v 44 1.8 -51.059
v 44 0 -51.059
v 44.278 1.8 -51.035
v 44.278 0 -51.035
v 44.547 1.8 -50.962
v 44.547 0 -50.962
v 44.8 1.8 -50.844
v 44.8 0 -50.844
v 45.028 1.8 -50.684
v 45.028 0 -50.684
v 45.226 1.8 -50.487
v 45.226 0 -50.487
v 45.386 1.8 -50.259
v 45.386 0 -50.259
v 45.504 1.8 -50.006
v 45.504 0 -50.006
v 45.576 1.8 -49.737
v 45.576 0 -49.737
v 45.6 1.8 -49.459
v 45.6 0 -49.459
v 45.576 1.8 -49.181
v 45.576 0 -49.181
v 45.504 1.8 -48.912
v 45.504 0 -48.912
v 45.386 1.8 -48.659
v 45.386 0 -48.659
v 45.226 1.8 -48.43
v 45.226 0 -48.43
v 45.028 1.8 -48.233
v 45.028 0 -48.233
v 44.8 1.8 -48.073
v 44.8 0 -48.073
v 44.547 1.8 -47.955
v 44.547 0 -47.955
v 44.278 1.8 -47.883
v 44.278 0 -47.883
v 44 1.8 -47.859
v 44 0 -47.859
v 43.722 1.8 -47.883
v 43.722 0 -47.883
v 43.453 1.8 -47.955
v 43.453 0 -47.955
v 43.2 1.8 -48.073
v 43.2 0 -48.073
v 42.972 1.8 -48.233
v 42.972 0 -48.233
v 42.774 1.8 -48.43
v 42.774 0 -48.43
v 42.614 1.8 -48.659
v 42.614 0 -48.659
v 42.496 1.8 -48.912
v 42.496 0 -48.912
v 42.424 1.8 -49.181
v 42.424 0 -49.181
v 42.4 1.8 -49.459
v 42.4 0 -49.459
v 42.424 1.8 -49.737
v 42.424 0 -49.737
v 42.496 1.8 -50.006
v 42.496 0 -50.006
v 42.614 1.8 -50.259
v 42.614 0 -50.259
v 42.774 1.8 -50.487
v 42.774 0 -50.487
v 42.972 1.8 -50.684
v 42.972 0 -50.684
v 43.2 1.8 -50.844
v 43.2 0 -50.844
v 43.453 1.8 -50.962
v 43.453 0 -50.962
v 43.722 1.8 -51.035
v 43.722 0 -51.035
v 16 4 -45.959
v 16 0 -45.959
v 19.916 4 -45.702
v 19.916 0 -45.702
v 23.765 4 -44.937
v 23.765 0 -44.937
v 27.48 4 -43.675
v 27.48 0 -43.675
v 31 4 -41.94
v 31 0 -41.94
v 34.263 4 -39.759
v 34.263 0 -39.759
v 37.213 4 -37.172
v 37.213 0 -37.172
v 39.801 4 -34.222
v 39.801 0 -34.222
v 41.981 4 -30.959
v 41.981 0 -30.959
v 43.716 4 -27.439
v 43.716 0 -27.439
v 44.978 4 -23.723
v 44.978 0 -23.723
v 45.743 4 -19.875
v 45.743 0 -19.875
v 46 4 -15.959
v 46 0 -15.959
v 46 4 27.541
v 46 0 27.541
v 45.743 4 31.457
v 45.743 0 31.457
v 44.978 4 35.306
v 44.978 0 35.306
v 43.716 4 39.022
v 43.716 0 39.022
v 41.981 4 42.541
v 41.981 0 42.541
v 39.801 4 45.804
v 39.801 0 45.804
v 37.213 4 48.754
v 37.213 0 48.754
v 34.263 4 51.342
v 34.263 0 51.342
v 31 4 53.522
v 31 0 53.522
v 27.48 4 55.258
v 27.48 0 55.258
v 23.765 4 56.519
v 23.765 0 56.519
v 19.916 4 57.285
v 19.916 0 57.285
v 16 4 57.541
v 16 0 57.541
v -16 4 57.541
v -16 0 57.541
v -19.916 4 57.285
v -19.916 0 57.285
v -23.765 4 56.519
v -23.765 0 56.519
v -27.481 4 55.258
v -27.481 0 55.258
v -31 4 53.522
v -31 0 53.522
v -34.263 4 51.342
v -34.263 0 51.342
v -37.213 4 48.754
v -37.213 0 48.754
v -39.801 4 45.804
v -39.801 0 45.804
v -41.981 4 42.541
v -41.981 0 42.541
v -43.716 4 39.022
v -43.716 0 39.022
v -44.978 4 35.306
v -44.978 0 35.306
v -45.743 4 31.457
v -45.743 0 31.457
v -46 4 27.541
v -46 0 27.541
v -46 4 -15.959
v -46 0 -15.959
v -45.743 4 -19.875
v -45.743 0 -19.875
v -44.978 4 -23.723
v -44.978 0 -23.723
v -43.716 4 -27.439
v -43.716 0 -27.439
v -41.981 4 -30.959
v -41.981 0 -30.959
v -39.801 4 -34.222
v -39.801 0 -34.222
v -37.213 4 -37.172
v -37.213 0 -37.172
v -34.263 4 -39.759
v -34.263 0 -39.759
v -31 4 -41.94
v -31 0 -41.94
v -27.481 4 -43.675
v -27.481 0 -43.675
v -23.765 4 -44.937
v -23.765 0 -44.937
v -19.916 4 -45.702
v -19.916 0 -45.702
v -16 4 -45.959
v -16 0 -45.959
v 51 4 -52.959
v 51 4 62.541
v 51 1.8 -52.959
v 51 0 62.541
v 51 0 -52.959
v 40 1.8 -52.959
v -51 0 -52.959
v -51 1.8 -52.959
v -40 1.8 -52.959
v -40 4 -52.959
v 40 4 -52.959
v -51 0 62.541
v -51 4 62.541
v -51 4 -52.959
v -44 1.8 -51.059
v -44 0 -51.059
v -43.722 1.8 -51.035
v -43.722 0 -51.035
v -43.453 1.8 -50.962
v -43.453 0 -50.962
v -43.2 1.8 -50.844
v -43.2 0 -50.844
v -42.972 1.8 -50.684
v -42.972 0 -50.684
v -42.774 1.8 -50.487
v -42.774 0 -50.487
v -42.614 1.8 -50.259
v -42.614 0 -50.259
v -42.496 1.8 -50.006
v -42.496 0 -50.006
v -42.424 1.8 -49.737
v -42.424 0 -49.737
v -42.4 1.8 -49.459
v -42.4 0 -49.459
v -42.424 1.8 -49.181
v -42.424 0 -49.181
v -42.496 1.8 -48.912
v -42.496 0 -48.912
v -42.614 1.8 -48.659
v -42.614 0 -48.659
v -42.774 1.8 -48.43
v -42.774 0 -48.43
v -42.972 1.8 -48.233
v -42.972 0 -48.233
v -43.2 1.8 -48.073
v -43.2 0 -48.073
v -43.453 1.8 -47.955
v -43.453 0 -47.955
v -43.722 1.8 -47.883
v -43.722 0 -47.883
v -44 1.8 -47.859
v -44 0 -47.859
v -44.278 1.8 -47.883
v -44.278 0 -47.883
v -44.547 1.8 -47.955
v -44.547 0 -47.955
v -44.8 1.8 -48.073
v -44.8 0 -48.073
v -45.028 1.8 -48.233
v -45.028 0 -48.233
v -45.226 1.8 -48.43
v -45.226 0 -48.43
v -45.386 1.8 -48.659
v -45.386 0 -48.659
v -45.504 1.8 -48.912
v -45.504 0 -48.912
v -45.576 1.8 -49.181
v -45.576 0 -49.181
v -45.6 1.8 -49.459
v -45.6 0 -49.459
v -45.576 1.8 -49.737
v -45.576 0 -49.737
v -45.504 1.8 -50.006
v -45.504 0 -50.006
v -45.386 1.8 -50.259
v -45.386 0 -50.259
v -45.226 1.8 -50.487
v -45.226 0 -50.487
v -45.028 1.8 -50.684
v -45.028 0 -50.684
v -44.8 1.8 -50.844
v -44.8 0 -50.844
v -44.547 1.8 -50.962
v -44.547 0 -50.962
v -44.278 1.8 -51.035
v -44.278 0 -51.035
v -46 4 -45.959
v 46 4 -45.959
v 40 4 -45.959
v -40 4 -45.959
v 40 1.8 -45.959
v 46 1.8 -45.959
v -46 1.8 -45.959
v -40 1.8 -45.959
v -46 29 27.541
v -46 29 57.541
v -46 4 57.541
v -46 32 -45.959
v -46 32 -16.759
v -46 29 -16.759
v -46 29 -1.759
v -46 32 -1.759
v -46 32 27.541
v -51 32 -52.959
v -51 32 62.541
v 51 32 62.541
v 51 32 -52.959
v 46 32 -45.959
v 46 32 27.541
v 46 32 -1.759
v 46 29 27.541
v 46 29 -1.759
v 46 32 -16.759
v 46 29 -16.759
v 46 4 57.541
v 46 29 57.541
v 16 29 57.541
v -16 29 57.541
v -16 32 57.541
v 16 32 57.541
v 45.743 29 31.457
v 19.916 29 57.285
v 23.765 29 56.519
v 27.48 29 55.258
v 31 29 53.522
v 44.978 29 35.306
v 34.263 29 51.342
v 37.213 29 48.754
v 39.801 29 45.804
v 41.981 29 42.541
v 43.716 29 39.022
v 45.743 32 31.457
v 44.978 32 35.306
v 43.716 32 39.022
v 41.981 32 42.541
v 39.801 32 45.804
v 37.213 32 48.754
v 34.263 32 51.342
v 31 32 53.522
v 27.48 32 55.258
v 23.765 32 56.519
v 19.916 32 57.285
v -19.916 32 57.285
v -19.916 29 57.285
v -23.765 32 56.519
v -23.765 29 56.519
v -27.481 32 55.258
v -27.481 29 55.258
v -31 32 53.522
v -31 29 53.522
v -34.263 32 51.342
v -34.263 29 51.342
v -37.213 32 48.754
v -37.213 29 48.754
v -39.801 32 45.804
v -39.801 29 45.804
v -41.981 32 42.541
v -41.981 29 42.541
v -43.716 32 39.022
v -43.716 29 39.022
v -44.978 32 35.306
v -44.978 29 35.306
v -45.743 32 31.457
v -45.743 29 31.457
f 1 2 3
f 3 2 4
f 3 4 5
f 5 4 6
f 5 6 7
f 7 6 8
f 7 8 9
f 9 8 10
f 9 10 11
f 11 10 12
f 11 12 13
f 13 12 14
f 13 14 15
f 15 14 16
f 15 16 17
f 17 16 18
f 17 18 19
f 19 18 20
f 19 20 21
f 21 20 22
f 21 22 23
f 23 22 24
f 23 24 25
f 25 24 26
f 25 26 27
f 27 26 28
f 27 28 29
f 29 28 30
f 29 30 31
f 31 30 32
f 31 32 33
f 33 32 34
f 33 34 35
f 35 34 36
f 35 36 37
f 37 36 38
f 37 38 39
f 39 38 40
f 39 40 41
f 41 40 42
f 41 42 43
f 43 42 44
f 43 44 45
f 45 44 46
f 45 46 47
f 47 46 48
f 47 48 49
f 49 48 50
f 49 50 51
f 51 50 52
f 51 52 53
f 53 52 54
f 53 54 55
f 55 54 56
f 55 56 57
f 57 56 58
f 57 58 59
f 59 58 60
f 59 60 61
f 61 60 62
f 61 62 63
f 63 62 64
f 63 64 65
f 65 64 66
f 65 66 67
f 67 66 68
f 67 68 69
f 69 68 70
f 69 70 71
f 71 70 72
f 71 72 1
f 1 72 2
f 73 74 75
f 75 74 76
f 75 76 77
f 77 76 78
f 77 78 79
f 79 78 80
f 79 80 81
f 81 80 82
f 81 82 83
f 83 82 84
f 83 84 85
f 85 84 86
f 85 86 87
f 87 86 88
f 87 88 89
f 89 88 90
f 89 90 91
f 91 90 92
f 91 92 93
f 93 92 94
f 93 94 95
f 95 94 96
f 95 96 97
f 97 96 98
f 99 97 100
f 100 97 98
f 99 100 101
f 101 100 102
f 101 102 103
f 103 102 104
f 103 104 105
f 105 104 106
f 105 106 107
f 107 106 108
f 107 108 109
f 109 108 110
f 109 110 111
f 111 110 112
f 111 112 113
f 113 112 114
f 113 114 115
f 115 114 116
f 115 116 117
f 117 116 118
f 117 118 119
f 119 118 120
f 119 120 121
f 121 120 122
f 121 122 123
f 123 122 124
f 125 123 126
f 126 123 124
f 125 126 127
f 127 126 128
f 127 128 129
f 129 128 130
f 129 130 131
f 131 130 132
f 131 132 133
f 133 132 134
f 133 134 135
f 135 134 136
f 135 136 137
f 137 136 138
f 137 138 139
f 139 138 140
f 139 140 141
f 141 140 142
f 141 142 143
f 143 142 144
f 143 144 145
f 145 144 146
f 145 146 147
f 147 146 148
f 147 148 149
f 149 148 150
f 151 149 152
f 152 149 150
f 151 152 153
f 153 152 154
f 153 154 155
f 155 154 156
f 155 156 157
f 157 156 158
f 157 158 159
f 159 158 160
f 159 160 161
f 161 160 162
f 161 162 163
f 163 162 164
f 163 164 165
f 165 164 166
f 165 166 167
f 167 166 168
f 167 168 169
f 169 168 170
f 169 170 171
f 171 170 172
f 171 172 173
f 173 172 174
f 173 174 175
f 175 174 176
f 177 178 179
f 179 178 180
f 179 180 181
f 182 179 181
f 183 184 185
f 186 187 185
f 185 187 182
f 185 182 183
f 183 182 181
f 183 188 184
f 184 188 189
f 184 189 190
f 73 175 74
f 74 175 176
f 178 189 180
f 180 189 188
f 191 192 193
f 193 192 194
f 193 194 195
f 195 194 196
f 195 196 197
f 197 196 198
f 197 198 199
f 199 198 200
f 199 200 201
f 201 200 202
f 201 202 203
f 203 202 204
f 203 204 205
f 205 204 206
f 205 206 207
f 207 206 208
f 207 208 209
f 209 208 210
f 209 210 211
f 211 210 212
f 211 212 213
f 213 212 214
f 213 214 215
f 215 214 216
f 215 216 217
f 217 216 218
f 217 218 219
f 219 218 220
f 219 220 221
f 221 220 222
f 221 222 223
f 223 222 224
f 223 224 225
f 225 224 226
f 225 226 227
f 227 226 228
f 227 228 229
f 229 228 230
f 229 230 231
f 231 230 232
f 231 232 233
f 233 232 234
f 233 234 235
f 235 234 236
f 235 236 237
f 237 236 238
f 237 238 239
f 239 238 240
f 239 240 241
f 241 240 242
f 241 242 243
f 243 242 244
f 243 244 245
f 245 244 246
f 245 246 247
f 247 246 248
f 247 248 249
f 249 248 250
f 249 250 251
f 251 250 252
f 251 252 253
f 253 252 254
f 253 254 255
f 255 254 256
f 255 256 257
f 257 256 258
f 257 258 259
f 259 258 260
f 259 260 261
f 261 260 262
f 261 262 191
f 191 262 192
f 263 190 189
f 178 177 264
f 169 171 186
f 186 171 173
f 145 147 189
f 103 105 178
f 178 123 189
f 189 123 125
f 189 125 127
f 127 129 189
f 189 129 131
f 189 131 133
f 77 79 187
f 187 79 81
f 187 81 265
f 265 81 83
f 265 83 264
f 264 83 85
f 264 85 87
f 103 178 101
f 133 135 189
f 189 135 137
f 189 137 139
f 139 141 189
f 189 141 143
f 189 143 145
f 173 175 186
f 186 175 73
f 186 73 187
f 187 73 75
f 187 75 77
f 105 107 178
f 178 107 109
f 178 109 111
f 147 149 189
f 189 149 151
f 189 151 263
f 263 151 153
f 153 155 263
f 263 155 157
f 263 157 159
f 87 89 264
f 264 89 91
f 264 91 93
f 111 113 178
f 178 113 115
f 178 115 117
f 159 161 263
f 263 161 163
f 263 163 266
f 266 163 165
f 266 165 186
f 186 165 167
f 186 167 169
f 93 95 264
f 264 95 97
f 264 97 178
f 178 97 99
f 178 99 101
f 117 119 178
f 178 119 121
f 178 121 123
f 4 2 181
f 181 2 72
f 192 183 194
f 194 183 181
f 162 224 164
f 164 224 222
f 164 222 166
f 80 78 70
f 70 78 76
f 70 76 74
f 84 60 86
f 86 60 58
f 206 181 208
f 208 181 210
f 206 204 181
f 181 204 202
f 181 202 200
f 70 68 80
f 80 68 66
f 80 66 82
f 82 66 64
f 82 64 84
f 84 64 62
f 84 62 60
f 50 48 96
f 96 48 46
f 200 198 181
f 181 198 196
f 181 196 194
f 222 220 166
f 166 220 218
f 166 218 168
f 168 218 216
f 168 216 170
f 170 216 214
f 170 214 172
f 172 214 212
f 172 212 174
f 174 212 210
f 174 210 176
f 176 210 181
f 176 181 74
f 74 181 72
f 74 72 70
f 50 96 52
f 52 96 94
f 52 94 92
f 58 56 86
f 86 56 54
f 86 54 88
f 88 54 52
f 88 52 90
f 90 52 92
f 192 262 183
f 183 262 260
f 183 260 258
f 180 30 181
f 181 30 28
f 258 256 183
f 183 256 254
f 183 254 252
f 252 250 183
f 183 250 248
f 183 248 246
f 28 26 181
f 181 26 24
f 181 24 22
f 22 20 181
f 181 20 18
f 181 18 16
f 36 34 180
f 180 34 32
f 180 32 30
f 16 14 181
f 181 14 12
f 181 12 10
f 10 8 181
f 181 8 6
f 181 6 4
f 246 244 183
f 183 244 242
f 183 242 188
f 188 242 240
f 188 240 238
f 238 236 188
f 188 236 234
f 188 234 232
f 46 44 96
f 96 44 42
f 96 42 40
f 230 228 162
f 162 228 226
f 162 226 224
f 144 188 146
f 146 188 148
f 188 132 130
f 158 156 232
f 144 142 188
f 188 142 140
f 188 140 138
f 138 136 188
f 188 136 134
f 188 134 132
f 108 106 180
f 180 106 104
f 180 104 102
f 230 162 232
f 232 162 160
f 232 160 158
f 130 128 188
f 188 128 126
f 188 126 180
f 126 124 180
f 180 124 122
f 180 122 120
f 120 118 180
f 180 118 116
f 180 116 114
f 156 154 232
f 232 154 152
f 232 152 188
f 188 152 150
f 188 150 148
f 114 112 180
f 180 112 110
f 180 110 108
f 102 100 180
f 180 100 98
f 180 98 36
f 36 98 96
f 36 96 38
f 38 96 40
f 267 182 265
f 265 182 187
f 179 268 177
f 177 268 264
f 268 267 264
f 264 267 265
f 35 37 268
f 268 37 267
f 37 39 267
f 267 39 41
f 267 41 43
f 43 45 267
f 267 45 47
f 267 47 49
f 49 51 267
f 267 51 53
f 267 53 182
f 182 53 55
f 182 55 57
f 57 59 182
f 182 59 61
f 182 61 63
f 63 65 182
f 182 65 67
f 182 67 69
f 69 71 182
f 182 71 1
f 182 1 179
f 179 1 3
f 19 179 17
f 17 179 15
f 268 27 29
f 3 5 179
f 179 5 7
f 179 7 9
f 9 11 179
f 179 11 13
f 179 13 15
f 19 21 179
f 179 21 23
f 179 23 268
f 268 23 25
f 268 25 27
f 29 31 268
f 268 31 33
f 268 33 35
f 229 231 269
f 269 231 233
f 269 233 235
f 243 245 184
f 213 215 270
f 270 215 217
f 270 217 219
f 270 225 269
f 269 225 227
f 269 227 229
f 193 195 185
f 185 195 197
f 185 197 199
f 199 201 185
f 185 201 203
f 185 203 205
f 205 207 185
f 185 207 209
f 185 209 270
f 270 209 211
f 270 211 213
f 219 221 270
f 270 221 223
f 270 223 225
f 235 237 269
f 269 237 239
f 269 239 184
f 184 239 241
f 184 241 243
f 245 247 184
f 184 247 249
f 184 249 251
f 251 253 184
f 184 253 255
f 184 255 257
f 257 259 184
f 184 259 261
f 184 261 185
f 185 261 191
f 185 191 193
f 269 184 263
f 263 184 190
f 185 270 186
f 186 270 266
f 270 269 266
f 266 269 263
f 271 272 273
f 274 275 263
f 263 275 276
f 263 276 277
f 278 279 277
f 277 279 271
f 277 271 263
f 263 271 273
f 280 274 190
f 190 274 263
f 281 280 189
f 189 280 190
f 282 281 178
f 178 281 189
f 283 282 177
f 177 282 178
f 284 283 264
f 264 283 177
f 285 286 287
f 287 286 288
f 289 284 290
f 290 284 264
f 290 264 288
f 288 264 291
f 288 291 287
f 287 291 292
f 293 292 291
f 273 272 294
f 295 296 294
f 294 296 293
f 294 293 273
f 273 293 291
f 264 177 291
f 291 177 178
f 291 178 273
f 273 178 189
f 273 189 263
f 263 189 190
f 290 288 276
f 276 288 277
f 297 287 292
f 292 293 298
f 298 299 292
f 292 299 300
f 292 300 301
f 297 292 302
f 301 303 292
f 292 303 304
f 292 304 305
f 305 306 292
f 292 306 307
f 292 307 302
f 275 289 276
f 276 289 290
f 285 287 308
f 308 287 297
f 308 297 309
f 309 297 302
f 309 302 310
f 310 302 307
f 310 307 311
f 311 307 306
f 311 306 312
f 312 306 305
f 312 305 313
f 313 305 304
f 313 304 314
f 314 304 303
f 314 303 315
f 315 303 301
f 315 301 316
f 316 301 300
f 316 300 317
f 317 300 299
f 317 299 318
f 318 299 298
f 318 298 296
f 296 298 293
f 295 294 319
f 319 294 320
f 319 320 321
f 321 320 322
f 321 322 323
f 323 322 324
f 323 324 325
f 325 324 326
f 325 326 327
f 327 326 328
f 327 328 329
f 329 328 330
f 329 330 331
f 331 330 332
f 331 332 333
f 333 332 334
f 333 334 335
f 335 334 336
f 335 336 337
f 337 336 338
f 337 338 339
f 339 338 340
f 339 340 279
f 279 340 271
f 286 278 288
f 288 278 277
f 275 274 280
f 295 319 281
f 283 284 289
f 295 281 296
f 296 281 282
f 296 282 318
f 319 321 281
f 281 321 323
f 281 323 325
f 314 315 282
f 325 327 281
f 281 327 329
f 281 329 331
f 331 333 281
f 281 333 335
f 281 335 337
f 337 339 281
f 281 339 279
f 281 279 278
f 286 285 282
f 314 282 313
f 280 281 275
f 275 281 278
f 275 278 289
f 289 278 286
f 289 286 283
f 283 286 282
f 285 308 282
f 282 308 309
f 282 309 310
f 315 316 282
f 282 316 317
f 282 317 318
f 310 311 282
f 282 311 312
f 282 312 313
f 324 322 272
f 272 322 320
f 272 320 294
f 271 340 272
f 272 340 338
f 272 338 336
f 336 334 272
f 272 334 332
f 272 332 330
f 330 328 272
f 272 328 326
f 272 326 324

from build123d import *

# Parameters (mm, degrees)
SKETCH1_R           = 1.6
BOSS_EXTRUDE2_DEPTH = 4
BOSS_EXTRUDE3_DEPTH = 25
CUT_EXTRUDE1_DEPTH  = 2.2
BOSS_EXTRUDE4_DEPTH = 3


with BuildPart() as part:
    # Sketch1 → Boss-Extrude2 (new body)
    with BuildSketch(Plane(origin=(0, 0, 0), x_dir=(1, 0, 0), z_dir=(0, 1, 0))):
        Polygon((-44, 52.958818287), (-51, 52.958818287), (-51, -62.541181713), (51, -62.541181713), (51, 52.958818287), (44, 52.958818287), align=None)
        with BuildLine():
            ThreePointArc((46, -27.541181713), (37.213203436, -48.754385149), (16, -57.541181713))
            Line((16, -57.541181713), (-16, -57.541181713))
            ThreePointArc((-16, -57.541181713), (-37.213203436, -48.754385149), (-46, -27.541181713))
            Line((-46, -27.541181713), (-46, 15.958818287))
            ThreePointArc((-46, 15.958818287), (-37.213203436, 37.172021722), (-16, 45.958818287))
            Line((-16, 45.958818287), (16, 45.958818287))
            ThreePointArc((16, 45.958818287), (37.213203436, 37.172021722), (46, 15.958818287))
            Line((46, 15.958818287), (46, -27.541181713))
        make_face(mode=Mode.SUBTRACT)
        with Locations((-44, 49.458818287)):
            Circle(SKETCH1_R, mode=Mode.SUBTRACT)
        with Locations((44, 49.458818287)):
            Circle(SKETCH1_R, mode=Mode.SUBTRACT)
    extrude(amount=BOSS_EXTRUDE2_DEPTH)

    # Sketch3 → Cut-Extrude1 (cut)
    with BuildSketch(Plane(origin=(0, 4, 0), x_dir=(1, 0, 0), z_dir=(0, 1, 0))):
        Polygon((-51, 52.958818287), (-40, 52.958818287), (-40, 45.958818287), (-46, 45.958818287), align=None)
        Polygon((40, 45.958818287), (46, 45.958818287), (51, 52.958818287), (40, 52.958818287), align=None)
    extrude(amount=-CUT_EXTRUDE1_DEPTH, mode=Mode.SUBTRACT)


with BuildPart() as body_2:
    # Sketch2 → Boss-Extrude3 (new body)
    with BuildSketch(Plane(origin=(0, 4, 0), x_dir=(1, 0, 0), z_dir=(0, 1, 0))):
        Polygon((-51, -62.541181713), (51, -62.541181713), (51, 52.958818287), (46, 45.958818287), (46, -57.541181713), (-46, -57.541181713), (-46, 45.958818287), (-51, 52.958818287), align=None)
    extrude(amount=BOSS_EXTRUDE3_DEPTH)

    # Sketch4 → Boss-Extrude4 (add)
    with BuildSketch(Plane(origin=(0, 29, 0), x_dir=(1, 0, 0), z_dir=(0, 1, 0))):
        Polygon((-46, 45.958818287), (-51, 52.958818287), (-51, -62.541181713), (51, -62.541181713), (51, 52.958818287), (46, 45.958818287), (46, 16.759345997), (-46, 16.759345997), align=None)
        with BuildLine():
            Line((-46, -27.541181713), (-46, 1.759345997))
            Line((-46, 1.759345997), (46, 1.759345997))
            Line((46, 1.759345997), (46, -27.541181713))
            ThreePointArc((46, -27.541181713), (37.213203436, -48.754385149), (16, -57.541181713))
            Line((16, -57.541181713), (-16, -57.541181713))
            ThreePointArc((-16, -57.541181713), (-37.213203436, -48.754385149), (-46, -27.541181713))
        make_face(mode=Mode.SUBTRACT)
    extrude(amount=BOSS_EXTRUDE4_DEPTH)


solid = Compound([part.part, body_2.part])
